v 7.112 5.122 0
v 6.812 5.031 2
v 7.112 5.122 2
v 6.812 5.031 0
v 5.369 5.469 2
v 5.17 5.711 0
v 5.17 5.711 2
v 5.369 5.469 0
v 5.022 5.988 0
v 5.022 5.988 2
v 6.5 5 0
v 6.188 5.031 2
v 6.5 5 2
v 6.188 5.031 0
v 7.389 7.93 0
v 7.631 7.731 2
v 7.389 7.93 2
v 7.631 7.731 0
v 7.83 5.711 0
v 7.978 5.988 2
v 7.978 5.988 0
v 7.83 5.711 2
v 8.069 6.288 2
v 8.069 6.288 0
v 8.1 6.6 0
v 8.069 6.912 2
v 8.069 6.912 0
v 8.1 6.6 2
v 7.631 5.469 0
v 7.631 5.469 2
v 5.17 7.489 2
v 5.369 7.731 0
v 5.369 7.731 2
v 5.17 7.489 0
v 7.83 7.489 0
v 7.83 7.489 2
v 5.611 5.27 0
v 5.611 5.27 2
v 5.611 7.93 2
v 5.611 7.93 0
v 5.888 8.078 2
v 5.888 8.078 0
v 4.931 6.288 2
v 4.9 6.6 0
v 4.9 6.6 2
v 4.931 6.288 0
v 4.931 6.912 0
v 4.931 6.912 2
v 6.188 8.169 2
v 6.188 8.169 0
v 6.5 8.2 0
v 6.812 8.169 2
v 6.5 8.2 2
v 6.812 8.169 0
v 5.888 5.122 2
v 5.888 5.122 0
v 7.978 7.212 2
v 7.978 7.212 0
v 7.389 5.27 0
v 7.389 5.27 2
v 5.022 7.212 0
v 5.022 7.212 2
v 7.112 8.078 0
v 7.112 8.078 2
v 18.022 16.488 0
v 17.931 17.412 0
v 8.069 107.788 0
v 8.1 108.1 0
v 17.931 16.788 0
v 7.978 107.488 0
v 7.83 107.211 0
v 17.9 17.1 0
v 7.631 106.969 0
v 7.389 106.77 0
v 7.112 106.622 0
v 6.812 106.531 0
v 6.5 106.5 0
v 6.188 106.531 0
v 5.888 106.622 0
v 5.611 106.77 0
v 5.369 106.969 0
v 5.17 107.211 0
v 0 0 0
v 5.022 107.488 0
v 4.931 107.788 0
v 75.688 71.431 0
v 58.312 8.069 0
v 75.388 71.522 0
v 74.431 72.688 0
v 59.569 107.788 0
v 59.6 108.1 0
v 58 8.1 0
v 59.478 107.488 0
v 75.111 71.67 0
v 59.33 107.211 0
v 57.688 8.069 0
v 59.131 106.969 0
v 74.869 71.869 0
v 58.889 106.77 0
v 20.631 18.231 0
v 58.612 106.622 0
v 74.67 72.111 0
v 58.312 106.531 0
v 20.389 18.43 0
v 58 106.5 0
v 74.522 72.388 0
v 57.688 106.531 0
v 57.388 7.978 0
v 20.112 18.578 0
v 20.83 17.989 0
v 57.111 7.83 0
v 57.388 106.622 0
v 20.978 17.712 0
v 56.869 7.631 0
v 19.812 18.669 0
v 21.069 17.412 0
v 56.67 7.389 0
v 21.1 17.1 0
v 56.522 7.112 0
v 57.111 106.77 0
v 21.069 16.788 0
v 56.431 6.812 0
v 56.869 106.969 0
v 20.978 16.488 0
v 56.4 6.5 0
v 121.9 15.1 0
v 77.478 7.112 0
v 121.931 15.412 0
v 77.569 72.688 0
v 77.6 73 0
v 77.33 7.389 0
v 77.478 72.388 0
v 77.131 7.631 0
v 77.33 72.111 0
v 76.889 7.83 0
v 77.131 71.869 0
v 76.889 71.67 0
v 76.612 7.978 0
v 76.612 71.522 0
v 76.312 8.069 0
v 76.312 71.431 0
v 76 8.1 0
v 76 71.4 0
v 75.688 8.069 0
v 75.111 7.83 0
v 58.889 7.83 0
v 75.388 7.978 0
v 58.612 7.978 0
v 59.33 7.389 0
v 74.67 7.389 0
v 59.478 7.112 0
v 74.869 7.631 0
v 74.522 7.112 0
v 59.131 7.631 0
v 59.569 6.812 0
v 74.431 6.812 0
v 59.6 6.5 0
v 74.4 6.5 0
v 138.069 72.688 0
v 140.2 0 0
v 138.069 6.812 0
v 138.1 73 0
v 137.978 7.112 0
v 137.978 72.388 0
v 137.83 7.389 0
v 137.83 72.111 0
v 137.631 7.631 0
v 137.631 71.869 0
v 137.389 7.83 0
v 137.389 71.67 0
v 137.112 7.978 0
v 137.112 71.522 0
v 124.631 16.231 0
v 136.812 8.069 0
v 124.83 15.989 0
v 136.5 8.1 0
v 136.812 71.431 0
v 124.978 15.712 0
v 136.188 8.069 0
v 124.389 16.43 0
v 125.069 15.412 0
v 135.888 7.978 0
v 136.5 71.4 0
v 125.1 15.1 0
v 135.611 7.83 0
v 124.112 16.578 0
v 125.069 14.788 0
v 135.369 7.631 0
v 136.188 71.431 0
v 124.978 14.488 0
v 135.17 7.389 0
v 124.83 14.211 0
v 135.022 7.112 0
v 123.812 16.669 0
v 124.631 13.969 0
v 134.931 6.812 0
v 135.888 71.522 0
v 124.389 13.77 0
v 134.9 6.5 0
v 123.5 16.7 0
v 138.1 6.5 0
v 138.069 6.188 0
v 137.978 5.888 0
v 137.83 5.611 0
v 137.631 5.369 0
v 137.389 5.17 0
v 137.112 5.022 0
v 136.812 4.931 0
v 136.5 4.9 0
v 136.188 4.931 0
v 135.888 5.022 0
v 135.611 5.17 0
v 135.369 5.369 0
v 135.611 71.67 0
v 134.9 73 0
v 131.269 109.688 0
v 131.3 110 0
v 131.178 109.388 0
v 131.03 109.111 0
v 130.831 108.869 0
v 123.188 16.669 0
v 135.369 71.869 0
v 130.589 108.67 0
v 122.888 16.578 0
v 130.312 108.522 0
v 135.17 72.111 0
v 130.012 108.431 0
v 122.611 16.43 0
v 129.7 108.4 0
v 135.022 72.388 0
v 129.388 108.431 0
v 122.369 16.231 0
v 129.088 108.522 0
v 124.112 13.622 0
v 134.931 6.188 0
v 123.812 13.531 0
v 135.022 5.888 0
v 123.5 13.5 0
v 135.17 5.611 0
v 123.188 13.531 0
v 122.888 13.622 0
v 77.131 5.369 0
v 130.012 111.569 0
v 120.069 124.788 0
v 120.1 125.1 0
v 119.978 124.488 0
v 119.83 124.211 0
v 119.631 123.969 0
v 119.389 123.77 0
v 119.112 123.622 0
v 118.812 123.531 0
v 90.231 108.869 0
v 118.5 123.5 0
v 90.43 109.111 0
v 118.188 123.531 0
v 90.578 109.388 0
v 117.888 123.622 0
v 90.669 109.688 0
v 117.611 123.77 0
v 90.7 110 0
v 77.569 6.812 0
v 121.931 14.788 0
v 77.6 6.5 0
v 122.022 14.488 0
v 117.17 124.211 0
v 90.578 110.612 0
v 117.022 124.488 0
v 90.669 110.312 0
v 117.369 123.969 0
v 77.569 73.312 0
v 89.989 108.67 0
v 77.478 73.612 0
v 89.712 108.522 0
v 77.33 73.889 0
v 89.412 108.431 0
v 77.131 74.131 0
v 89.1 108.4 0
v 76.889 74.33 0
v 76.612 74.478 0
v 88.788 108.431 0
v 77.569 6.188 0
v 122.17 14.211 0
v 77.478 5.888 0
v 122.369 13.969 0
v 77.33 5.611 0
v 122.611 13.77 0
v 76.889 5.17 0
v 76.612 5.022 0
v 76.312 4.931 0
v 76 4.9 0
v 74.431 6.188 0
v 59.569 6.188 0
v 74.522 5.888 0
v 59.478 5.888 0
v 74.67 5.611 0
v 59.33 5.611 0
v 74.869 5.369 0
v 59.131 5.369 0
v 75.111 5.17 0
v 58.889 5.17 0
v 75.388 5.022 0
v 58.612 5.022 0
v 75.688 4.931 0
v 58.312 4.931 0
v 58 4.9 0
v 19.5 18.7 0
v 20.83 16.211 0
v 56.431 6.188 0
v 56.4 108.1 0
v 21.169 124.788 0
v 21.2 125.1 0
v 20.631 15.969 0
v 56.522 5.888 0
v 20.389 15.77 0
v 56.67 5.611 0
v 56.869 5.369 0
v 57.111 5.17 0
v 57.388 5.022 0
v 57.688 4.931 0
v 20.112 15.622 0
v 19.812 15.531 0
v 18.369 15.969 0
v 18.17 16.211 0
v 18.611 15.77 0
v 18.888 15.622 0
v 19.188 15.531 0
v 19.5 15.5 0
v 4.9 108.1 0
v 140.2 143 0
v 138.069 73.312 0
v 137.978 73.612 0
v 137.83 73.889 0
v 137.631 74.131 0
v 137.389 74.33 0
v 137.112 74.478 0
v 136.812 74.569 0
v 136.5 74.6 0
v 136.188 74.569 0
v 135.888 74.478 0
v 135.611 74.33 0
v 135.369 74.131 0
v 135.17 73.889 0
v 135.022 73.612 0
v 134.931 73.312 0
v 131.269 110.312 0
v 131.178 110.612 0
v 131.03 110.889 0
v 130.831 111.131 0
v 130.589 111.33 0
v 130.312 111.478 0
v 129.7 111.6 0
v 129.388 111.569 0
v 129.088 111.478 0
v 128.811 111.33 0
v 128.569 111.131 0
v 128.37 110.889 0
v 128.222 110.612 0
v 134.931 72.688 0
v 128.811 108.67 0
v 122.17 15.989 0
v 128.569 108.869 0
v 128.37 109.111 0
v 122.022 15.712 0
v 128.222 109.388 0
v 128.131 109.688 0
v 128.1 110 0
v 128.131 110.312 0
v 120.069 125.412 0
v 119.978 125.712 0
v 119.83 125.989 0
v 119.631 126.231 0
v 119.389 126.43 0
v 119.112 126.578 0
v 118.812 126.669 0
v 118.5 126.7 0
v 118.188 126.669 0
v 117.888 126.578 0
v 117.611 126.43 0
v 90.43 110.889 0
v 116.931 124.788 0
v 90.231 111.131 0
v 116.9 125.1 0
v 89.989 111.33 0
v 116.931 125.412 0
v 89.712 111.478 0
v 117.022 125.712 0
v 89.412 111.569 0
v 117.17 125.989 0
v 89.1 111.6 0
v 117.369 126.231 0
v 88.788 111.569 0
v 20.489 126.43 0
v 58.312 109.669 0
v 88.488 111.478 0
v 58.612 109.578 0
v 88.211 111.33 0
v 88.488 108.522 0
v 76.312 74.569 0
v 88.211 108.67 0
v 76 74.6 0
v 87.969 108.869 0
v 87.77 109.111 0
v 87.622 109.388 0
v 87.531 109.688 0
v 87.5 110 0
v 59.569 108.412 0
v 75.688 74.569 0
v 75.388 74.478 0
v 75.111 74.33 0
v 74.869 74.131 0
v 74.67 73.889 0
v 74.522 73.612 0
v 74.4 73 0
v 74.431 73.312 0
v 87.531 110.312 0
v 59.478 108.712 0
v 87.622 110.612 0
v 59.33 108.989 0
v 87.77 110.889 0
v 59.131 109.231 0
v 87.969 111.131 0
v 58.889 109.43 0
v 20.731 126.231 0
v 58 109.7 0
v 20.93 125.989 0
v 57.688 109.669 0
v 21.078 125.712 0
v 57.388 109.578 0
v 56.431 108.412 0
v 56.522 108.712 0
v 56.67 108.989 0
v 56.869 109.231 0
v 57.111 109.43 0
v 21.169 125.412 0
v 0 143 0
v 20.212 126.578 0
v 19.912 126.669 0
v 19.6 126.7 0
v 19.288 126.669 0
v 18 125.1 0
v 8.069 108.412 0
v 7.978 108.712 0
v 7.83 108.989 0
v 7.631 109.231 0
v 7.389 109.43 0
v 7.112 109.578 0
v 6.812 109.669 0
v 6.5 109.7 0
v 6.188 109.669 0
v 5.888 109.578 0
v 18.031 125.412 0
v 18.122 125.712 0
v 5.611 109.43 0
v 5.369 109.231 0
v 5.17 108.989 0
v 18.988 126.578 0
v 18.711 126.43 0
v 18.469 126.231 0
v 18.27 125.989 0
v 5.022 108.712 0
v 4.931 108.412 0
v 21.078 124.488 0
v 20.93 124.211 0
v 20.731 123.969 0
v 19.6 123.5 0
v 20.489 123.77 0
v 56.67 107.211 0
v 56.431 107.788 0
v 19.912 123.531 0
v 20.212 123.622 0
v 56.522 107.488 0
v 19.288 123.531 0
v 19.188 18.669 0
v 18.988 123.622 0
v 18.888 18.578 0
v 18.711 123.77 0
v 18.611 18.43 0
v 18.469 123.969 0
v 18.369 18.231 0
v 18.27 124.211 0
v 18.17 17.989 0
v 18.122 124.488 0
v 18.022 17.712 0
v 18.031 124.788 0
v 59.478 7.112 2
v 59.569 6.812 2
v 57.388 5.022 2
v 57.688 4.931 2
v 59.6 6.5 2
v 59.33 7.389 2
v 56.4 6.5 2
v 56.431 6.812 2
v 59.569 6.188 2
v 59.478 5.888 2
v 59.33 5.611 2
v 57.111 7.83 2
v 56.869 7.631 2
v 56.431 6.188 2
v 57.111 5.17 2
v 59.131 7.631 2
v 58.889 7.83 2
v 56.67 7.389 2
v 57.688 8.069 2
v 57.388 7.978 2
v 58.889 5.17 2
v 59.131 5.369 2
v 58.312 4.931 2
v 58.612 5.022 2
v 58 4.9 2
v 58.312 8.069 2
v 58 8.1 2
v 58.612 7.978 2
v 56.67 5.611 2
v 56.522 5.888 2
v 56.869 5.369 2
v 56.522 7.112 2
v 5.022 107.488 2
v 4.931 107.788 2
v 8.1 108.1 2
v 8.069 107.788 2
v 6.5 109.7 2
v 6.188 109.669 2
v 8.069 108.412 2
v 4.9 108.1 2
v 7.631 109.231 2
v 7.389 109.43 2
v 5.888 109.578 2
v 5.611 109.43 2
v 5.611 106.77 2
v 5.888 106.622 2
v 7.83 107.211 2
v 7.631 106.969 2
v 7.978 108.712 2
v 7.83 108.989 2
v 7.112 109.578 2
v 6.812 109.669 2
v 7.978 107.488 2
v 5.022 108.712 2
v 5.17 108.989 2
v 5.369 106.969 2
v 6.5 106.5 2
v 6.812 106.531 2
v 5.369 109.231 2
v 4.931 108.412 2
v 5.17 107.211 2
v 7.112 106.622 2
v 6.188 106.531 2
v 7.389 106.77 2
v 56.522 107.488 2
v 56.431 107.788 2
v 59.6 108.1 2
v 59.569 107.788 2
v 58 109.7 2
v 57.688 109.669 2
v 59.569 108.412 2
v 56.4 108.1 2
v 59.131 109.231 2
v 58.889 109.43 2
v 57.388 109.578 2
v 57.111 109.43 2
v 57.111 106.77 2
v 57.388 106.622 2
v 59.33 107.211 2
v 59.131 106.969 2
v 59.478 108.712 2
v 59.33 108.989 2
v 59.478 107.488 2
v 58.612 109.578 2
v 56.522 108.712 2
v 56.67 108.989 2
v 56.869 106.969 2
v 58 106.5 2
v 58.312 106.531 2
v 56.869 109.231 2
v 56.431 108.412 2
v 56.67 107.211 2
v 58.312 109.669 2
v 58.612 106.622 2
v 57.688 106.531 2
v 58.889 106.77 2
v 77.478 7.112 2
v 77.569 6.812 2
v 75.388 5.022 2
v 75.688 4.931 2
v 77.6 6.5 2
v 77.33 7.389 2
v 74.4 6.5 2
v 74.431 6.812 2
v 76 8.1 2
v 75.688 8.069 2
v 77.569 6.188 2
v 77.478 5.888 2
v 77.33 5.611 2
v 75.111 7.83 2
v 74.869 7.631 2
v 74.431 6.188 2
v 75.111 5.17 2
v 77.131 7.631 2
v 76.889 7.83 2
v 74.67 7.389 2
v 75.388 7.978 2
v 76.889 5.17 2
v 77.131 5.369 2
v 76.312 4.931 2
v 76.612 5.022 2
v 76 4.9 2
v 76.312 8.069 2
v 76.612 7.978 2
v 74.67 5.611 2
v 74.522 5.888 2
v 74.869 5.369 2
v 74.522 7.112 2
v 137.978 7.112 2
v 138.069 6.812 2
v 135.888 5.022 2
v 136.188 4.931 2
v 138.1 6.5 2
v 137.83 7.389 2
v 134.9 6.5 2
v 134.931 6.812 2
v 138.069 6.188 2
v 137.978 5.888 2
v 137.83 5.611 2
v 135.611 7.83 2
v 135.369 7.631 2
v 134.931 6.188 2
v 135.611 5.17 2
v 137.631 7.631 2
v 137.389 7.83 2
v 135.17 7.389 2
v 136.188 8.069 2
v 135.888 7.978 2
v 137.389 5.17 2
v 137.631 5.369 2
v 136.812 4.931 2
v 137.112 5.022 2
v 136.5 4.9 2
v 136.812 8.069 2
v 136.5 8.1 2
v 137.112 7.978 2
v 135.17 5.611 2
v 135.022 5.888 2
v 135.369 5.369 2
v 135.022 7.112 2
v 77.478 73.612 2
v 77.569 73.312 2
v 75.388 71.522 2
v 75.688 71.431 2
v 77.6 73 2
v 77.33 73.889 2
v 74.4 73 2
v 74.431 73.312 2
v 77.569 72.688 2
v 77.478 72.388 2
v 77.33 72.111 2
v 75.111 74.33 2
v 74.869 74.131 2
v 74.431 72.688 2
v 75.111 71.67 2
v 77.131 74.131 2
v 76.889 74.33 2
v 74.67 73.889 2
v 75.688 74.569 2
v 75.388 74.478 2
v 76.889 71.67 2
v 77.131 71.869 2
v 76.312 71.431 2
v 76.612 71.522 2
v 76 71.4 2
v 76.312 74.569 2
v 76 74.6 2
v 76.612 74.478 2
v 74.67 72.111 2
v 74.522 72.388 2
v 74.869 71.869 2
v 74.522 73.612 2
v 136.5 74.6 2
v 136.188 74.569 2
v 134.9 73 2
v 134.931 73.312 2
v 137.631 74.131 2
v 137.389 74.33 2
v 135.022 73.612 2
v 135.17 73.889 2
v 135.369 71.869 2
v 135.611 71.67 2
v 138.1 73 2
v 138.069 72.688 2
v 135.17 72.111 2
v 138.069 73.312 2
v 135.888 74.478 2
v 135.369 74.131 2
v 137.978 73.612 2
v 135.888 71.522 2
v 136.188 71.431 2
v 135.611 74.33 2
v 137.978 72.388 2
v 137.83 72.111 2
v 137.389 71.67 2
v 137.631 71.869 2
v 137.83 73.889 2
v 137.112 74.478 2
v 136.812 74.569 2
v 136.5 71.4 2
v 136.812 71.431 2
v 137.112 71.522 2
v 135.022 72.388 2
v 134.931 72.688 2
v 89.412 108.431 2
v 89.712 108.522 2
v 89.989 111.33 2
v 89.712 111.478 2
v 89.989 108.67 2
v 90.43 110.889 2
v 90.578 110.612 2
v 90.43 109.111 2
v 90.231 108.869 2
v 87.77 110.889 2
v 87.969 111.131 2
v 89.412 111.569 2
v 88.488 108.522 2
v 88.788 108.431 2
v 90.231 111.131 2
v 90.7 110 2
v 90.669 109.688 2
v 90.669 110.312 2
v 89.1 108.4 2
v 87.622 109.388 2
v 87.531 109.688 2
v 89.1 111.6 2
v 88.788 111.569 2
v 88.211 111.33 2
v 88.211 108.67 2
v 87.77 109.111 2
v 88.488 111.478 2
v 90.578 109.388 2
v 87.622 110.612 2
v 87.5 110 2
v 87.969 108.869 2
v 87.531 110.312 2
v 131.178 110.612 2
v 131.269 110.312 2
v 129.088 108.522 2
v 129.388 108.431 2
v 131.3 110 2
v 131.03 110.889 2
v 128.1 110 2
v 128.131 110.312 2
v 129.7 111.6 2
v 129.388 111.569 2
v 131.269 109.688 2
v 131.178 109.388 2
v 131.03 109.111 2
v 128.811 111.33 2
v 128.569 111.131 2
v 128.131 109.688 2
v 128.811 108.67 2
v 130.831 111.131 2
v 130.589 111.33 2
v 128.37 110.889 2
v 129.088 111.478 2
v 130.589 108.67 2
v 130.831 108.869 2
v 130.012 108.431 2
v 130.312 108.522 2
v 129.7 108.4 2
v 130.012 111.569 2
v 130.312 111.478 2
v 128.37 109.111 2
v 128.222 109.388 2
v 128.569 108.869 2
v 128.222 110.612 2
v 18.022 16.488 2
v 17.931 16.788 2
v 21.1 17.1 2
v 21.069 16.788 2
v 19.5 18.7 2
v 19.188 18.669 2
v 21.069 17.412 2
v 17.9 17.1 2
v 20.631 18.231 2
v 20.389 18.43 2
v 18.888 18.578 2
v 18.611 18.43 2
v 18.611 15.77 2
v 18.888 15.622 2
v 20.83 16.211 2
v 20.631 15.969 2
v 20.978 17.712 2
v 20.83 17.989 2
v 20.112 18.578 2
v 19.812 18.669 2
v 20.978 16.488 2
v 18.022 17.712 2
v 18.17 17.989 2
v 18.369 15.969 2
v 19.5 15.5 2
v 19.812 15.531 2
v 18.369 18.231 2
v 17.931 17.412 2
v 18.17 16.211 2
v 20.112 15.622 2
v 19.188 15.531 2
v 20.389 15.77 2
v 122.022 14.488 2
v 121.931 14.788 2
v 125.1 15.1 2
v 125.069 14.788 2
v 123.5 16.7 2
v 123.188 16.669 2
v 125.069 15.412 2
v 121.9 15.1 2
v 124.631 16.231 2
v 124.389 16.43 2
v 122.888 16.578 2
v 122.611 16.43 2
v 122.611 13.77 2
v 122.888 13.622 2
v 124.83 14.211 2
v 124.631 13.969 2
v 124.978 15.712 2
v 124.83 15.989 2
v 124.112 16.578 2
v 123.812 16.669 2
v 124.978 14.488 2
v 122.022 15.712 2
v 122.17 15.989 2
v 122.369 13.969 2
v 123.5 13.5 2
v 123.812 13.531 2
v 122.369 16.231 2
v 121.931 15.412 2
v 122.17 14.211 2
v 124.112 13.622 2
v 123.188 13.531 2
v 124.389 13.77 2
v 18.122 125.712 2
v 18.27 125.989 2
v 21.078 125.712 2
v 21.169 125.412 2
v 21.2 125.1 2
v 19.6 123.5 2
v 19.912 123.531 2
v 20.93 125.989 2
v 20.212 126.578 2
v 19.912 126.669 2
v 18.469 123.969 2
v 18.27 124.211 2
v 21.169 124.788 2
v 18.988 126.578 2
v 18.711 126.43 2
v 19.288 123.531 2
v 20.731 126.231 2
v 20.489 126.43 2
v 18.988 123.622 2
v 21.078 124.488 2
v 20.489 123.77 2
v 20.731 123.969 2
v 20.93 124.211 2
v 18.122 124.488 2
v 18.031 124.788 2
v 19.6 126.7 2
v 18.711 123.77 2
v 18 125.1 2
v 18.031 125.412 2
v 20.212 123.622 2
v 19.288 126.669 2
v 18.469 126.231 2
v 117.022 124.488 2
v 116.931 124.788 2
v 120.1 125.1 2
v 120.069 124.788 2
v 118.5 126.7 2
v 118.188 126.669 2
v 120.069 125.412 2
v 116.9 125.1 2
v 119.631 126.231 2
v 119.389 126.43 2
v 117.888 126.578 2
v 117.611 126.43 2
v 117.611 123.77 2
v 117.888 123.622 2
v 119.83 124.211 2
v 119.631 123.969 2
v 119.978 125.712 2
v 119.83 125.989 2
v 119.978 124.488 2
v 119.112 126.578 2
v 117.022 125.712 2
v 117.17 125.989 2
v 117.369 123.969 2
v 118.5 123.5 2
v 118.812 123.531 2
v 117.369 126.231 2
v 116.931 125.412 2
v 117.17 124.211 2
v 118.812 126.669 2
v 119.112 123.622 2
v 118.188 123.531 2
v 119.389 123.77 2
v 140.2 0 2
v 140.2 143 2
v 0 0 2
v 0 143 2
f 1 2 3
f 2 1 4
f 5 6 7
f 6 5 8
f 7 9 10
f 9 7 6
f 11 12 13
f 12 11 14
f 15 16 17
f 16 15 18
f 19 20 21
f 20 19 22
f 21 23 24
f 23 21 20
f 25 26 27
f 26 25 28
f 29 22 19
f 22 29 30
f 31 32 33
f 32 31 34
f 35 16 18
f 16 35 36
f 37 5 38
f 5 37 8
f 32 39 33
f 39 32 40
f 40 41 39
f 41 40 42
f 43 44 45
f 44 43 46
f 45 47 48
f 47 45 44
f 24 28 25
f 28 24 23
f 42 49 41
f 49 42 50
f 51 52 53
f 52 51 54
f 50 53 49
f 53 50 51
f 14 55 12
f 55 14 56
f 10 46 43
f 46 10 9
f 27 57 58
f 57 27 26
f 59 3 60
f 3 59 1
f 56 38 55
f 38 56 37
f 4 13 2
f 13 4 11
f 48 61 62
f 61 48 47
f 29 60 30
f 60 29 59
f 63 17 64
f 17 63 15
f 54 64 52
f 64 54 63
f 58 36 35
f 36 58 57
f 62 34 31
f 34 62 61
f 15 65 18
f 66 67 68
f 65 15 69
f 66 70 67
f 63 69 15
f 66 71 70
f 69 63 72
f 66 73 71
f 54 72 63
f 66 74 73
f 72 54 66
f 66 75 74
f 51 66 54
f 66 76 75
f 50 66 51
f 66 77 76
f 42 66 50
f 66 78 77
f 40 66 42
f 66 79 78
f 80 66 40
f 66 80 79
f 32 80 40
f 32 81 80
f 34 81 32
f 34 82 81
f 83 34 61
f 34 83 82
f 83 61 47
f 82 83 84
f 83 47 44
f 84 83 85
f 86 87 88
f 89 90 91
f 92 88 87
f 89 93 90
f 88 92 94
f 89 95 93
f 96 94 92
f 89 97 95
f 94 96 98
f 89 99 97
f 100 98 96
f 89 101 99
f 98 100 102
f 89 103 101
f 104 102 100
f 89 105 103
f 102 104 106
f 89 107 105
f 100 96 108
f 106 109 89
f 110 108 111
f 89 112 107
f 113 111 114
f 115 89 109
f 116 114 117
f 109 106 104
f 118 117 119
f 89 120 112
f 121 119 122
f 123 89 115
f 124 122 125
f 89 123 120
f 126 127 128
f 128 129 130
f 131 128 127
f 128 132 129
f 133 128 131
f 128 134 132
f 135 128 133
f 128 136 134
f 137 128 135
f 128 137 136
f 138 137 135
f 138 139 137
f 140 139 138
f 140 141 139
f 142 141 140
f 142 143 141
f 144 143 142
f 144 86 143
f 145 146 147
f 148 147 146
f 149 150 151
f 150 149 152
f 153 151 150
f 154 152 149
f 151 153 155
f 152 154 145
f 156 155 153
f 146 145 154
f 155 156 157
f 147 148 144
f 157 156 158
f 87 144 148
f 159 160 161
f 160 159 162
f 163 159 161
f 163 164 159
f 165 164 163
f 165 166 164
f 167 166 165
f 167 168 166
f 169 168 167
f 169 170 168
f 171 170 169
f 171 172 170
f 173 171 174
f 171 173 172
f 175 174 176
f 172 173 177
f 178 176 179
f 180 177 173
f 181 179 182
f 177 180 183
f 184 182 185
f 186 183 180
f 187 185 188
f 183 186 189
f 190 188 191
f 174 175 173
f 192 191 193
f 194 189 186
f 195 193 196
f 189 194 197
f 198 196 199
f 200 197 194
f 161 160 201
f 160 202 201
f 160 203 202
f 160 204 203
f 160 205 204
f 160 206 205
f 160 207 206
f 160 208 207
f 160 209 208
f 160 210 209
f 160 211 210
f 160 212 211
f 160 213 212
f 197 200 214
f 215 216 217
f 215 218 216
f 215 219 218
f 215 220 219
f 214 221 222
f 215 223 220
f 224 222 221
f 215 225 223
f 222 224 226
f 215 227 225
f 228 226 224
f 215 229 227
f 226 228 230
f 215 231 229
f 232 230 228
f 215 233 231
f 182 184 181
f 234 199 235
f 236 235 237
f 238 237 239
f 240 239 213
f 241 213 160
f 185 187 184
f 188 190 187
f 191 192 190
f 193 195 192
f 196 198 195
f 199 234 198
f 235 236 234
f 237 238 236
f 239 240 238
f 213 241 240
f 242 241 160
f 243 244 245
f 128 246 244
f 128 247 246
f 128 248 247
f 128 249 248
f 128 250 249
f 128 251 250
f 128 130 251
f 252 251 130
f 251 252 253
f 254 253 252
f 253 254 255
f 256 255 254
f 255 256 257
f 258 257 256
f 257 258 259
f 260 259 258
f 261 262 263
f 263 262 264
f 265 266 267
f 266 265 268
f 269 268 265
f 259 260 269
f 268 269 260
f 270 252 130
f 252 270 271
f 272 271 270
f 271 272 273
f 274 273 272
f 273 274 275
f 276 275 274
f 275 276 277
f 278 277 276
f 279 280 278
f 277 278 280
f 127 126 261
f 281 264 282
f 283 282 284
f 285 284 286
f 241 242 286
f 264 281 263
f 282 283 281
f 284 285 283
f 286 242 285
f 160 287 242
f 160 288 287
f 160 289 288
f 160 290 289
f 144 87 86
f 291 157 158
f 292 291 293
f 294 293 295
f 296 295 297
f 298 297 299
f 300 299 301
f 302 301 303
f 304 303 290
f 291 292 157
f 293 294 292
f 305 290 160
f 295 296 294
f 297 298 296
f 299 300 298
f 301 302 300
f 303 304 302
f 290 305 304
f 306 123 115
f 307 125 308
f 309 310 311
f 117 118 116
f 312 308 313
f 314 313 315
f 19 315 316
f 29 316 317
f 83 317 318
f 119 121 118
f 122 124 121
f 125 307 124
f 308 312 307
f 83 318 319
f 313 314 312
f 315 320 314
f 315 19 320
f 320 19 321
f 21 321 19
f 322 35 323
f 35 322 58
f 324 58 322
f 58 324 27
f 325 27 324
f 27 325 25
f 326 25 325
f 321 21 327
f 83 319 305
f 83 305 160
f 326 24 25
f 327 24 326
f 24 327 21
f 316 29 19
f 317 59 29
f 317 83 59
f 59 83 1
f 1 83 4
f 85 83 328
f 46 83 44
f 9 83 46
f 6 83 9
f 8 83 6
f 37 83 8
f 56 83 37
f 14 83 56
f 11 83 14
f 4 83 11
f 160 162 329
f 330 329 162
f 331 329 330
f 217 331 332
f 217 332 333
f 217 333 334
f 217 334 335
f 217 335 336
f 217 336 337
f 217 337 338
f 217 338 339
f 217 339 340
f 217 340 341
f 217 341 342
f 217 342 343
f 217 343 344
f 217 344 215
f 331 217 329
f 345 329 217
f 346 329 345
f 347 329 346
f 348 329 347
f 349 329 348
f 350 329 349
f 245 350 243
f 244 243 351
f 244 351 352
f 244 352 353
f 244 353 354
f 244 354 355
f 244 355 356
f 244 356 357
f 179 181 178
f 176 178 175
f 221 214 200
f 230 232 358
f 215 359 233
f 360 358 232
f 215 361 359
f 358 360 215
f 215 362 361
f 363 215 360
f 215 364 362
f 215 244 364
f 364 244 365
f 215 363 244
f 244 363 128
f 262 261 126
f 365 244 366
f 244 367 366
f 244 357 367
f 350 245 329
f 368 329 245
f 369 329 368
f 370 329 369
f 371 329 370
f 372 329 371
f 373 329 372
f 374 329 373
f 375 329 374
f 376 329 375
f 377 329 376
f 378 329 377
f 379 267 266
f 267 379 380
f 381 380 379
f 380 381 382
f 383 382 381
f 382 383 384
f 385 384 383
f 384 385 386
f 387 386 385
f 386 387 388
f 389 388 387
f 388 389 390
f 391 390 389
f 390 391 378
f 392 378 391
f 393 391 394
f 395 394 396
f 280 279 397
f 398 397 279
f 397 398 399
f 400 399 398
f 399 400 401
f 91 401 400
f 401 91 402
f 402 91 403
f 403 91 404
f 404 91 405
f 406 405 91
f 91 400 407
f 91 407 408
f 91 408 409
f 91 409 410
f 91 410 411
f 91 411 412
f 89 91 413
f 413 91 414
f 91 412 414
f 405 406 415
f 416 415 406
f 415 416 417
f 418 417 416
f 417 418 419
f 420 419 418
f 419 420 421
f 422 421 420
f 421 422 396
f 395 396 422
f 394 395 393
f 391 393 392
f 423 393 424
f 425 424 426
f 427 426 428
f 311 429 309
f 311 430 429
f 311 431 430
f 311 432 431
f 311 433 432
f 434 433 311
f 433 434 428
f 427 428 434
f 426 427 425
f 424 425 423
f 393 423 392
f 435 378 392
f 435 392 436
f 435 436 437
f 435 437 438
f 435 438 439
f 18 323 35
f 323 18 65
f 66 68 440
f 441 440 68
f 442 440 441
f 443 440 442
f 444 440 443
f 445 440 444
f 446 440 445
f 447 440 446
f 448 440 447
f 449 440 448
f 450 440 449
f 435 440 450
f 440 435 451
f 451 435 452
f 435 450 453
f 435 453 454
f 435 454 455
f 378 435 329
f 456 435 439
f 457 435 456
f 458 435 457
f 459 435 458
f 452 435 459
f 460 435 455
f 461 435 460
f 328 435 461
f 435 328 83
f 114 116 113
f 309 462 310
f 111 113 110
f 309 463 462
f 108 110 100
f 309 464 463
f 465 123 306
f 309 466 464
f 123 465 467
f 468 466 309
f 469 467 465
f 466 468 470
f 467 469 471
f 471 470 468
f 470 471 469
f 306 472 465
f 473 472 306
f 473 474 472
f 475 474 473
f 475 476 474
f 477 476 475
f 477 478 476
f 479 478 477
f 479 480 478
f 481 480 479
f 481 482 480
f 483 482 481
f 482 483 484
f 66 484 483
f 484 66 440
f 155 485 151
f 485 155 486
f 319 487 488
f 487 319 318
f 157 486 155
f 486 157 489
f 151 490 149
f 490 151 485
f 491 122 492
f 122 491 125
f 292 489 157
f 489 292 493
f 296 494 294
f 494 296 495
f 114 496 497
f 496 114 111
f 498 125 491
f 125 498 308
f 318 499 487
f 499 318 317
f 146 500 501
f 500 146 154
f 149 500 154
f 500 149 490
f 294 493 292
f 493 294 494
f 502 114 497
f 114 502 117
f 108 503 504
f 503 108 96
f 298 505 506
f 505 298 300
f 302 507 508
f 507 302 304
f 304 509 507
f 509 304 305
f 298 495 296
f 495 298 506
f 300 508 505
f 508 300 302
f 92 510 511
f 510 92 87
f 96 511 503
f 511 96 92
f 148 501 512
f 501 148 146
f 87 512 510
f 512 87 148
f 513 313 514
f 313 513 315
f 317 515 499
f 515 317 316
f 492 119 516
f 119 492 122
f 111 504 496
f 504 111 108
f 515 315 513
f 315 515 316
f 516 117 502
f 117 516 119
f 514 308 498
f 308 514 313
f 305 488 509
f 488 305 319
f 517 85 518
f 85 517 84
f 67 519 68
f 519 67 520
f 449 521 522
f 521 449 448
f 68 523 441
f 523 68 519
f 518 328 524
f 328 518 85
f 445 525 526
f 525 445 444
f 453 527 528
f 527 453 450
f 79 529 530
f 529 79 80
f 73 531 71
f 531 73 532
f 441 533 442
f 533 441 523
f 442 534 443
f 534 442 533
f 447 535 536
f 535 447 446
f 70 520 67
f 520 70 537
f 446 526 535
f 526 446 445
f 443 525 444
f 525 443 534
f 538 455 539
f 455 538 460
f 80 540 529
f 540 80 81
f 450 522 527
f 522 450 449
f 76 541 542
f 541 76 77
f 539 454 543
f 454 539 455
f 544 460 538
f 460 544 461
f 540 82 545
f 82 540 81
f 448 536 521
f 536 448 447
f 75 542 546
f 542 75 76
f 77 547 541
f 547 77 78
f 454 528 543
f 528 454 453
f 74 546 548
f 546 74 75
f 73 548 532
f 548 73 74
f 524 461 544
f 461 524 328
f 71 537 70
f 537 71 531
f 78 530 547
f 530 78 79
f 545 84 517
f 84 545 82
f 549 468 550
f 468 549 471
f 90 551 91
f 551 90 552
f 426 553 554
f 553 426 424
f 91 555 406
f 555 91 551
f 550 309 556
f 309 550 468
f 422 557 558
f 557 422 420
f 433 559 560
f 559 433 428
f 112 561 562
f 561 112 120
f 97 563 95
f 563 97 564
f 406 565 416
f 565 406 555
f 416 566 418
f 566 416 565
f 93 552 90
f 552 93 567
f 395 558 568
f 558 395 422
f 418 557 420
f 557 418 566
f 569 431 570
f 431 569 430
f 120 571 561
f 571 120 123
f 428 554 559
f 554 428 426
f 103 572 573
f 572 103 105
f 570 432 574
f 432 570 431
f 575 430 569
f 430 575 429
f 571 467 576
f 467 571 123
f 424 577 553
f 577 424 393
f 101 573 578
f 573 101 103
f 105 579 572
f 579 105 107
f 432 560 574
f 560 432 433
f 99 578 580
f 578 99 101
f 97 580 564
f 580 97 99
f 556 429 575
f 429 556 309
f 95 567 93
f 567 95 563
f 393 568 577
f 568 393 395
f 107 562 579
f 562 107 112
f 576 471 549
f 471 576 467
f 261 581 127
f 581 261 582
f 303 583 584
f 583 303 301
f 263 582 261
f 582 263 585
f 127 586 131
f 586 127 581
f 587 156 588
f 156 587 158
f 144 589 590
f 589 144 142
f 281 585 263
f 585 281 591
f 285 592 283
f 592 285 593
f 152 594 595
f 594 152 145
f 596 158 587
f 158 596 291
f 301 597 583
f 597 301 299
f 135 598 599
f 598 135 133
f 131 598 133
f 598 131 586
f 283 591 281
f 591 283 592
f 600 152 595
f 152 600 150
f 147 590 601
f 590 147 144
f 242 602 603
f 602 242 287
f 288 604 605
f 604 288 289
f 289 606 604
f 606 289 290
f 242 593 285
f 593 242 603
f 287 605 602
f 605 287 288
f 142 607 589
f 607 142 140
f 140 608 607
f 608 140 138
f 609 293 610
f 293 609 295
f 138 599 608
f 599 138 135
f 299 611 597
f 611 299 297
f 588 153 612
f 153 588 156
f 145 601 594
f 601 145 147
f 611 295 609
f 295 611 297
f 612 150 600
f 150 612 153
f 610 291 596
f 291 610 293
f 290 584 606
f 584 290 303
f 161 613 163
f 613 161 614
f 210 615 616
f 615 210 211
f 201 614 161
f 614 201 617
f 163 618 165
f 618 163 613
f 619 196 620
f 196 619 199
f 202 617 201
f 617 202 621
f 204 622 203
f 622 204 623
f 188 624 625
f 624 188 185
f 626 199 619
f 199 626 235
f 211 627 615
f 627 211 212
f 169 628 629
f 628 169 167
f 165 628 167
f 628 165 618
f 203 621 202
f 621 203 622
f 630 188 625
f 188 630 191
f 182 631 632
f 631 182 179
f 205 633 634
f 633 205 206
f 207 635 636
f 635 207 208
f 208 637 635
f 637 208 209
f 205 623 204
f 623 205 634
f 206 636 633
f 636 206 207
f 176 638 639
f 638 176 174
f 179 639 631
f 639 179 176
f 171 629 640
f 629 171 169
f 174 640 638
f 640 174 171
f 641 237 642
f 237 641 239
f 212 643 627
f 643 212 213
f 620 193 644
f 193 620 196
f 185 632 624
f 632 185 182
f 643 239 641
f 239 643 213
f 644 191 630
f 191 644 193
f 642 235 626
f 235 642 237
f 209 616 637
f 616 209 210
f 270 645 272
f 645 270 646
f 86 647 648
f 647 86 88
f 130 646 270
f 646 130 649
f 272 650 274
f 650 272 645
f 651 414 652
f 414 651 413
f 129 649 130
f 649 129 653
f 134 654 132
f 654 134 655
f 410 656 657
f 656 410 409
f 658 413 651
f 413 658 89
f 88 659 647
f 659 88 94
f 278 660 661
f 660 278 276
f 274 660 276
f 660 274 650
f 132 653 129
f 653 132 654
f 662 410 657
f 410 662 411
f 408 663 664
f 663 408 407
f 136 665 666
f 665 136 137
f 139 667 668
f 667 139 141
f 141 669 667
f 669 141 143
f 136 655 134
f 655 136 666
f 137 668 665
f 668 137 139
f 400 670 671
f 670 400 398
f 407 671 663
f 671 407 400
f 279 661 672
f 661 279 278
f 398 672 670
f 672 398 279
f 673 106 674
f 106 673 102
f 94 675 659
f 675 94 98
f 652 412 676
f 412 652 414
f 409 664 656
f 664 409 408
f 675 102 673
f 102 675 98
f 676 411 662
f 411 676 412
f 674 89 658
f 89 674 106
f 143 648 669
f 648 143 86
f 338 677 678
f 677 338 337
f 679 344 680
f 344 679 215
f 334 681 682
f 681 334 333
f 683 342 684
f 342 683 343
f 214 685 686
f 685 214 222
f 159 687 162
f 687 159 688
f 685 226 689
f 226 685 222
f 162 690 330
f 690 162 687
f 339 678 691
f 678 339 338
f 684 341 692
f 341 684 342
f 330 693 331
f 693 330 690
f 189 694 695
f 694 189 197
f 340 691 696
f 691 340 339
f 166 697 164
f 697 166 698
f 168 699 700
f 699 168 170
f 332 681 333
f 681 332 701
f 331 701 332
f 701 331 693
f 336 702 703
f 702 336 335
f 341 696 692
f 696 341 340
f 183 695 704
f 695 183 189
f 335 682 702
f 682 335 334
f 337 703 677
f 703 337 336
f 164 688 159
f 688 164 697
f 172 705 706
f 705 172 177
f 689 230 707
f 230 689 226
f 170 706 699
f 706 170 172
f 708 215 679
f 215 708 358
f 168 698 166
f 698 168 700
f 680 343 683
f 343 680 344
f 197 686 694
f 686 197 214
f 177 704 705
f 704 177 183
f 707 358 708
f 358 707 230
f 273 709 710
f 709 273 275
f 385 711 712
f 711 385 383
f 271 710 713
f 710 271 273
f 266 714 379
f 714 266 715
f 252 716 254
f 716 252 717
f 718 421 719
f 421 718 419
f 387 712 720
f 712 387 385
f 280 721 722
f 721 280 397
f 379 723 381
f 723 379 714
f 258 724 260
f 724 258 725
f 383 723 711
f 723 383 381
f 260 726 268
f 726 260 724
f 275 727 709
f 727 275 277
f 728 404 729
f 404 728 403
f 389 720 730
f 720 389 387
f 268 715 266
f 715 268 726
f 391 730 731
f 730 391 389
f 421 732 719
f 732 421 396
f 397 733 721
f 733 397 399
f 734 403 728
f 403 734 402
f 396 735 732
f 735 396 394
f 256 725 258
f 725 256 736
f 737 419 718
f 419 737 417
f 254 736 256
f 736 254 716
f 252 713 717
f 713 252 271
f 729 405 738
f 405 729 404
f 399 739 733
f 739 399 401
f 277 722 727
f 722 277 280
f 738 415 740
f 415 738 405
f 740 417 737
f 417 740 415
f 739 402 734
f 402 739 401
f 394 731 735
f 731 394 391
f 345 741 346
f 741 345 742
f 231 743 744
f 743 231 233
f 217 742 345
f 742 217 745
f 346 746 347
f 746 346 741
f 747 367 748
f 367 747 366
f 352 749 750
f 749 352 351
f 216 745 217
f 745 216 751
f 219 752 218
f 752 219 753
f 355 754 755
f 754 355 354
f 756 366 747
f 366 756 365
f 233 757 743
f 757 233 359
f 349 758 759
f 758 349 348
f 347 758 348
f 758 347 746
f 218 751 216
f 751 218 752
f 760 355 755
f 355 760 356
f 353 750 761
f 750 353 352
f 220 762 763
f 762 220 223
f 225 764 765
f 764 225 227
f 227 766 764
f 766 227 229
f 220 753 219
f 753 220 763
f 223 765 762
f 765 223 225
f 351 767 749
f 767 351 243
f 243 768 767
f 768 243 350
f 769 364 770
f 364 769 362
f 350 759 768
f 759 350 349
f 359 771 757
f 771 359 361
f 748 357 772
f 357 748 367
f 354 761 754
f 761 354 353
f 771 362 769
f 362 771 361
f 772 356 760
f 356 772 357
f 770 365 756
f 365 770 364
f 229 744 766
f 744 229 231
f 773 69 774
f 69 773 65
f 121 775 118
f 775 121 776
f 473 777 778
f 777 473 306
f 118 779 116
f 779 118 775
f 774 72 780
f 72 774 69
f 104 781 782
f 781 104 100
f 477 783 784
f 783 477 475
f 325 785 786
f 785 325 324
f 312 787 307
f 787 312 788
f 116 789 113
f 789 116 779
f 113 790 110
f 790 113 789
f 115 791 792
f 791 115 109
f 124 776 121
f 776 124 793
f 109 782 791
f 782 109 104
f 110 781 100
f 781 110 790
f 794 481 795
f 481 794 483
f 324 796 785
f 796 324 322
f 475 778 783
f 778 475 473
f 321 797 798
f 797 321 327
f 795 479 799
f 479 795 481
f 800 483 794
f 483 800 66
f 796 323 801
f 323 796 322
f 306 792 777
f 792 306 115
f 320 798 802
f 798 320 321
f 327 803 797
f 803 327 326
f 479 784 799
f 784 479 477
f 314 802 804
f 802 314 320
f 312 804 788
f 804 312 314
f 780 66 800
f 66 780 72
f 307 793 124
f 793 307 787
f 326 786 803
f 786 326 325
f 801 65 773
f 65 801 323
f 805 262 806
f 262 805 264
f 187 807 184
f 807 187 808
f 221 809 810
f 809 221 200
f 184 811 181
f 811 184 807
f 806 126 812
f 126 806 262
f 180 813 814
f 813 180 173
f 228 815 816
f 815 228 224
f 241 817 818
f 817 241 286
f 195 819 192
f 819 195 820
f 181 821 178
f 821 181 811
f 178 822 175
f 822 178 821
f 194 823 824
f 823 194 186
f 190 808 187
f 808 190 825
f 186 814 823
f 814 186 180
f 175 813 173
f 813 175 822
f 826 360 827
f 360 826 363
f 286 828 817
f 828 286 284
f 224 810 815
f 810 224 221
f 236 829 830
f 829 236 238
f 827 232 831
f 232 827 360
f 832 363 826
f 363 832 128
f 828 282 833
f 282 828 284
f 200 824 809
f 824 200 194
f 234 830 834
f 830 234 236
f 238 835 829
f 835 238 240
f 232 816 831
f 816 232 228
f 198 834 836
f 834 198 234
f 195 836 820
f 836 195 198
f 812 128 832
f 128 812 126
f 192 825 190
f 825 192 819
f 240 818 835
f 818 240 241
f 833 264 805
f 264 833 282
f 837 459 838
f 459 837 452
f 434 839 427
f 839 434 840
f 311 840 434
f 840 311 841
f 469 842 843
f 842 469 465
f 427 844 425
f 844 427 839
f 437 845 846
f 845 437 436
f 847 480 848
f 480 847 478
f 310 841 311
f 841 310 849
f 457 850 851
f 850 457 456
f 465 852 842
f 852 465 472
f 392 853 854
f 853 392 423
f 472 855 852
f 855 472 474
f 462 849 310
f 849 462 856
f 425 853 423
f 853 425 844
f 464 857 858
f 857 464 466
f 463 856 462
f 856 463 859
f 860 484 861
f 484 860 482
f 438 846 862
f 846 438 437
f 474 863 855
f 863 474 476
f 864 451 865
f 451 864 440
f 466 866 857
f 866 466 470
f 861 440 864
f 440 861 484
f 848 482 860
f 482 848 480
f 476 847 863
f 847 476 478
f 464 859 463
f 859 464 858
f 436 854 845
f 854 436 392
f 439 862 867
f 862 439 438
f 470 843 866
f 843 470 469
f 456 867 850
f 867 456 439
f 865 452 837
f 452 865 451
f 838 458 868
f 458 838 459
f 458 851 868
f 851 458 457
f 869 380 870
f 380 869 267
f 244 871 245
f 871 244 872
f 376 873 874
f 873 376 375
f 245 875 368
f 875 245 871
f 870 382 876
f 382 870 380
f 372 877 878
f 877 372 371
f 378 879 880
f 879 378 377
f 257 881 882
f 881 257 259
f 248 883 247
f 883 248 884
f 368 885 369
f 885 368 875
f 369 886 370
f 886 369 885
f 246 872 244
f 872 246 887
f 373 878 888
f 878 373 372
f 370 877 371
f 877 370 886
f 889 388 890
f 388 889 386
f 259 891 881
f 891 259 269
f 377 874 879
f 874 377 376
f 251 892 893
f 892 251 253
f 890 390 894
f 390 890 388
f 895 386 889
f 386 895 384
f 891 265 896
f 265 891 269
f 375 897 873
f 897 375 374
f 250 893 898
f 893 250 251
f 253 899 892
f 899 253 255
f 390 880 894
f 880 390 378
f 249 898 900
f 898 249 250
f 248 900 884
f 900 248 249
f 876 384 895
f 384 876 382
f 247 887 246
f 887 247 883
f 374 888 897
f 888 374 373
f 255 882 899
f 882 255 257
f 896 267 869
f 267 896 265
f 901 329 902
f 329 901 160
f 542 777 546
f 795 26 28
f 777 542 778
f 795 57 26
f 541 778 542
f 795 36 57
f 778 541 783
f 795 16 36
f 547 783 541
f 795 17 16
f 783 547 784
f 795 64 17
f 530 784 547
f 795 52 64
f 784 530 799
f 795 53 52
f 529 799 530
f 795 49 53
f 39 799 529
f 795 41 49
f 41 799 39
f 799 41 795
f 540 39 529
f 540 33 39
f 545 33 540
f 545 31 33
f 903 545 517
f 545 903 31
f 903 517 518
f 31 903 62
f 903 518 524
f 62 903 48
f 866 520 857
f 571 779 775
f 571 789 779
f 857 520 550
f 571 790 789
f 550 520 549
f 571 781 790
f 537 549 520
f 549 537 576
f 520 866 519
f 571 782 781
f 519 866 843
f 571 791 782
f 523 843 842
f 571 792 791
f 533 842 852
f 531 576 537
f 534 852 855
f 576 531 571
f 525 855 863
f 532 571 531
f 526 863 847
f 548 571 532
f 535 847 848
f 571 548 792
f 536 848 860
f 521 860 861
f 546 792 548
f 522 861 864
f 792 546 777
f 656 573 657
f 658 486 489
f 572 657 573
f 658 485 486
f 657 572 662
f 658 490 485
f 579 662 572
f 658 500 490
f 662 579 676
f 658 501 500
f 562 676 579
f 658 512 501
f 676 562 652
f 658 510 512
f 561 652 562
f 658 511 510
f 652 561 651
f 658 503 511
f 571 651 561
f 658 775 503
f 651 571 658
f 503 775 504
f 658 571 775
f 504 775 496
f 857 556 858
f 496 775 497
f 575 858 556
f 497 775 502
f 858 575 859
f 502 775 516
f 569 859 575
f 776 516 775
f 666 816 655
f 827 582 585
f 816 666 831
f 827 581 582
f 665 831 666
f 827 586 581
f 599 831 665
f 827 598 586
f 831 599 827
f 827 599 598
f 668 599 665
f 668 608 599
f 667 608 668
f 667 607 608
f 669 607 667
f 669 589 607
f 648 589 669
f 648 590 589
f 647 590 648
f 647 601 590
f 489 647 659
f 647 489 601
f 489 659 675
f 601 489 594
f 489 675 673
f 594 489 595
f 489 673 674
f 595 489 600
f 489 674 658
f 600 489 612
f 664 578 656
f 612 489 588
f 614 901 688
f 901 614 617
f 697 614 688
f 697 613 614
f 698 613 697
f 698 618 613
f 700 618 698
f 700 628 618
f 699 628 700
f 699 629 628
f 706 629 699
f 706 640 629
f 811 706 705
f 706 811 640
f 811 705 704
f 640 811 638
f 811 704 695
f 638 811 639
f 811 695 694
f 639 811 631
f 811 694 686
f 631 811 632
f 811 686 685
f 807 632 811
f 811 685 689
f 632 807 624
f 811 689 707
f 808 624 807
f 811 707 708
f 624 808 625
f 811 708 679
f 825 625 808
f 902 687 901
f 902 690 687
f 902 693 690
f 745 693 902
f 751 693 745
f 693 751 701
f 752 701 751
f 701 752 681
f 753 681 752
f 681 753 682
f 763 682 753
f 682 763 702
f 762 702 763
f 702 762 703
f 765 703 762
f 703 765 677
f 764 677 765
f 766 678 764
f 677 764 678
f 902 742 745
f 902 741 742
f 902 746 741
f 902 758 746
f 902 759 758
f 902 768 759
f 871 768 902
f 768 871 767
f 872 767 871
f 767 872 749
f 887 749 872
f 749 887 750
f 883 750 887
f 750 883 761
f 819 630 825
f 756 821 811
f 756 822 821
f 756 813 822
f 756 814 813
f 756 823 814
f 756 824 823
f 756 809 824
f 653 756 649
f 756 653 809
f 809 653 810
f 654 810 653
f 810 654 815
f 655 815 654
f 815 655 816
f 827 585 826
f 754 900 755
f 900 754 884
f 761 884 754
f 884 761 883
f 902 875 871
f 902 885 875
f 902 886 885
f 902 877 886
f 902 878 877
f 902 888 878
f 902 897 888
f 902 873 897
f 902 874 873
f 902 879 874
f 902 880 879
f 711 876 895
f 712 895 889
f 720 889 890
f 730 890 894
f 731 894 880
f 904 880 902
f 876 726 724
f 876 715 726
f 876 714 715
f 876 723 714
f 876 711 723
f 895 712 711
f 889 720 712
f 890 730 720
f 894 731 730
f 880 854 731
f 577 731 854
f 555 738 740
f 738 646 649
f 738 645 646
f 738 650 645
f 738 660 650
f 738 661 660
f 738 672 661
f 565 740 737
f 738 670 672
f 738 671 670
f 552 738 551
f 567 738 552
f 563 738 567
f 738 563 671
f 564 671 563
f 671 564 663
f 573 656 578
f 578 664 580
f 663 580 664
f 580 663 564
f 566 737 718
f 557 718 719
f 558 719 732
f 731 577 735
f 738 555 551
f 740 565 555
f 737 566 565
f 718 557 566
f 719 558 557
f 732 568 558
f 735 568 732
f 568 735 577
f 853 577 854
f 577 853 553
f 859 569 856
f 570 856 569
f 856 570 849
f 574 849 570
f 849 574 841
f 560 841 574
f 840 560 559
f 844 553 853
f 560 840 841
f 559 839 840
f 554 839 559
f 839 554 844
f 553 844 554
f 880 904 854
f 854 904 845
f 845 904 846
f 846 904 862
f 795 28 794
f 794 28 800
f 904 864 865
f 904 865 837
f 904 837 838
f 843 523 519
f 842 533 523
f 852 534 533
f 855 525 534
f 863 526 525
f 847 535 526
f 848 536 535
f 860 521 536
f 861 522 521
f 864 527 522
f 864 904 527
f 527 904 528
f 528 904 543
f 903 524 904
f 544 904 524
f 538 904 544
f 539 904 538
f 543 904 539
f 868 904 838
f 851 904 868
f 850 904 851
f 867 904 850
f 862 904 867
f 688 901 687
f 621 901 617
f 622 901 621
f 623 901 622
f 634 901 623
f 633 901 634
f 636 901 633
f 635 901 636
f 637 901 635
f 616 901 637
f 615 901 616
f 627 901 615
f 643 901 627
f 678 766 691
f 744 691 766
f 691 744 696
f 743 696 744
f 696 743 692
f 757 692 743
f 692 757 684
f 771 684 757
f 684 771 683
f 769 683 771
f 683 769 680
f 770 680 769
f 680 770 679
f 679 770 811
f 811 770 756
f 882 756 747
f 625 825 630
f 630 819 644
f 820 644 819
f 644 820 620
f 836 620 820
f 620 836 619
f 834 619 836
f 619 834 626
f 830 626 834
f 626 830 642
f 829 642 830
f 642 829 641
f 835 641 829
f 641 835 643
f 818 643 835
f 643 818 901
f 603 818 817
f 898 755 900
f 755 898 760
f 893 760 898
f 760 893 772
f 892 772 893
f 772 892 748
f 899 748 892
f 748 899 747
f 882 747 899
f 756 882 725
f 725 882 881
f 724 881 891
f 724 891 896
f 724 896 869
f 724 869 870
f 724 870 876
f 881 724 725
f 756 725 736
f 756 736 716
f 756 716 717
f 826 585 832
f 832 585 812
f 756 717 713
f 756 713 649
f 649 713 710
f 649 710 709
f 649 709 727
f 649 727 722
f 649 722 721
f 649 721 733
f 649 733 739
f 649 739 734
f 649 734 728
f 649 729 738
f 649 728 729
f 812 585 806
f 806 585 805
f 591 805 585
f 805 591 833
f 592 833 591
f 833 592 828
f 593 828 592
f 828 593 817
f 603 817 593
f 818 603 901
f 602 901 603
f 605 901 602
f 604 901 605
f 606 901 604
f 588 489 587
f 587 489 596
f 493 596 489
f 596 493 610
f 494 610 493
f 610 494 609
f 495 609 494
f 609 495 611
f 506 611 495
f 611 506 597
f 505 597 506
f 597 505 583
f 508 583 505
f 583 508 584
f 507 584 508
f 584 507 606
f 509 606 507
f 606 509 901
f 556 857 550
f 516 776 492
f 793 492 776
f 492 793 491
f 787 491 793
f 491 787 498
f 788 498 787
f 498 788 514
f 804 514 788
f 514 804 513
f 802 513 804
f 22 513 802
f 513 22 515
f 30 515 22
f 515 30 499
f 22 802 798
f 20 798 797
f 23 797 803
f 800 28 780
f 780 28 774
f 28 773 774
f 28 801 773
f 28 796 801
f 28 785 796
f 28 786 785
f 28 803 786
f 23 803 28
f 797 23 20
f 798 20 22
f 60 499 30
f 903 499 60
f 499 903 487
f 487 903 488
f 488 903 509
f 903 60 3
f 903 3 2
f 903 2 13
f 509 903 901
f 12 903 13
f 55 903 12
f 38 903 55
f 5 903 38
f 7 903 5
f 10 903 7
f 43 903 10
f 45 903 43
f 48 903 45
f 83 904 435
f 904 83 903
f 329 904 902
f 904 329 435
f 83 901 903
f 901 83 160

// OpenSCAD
// Set "resolution" of cylinders so it isn't low poly
$fn=32;

holes = [
    [ 6.5,  6.6 ],  // RelayHole1
    [ 58,   6.5 ],  // RelayHole2
    [ 6.5, 108.1],  // RelayHole3
    [ 58,  108.1],  // RelayHole4

    [76,  6.5 ],  // ESPHole1
    [136.5, 6.5 ],  // ESPHole2
    [76,  73 ],  // ESPHole3
    [136.5, 73 ],  // ESPHole4

    [89.1, 110],  // MeanwellHole1
    [129.7, 110],  // MeanwellHole2

    [19.5,  17.1 ],  // OriginalMountHole1
    [123.5, 15.1 ],  // OriginalMountHole2
    [19.6, 125.1],   // OriginalMountHole4
    [118.5, 125.1]    // OriginalMountHole5
];

hole_diameter = 3.2; // M3

base_thickness = 2;

base_length = 140.2;
base_width  = 143;


difference() {
    cube([base_length, base_width, base_thickness]);

    for (i = [0 : len(holes)-1]) {
		h = holes[i];

        translate([h[0],
                   h[1],
                   0])
        {
            cylinder(d=hole_diameter, h=base_thickness + 0.2, $fa=100);
        }
    }
}
